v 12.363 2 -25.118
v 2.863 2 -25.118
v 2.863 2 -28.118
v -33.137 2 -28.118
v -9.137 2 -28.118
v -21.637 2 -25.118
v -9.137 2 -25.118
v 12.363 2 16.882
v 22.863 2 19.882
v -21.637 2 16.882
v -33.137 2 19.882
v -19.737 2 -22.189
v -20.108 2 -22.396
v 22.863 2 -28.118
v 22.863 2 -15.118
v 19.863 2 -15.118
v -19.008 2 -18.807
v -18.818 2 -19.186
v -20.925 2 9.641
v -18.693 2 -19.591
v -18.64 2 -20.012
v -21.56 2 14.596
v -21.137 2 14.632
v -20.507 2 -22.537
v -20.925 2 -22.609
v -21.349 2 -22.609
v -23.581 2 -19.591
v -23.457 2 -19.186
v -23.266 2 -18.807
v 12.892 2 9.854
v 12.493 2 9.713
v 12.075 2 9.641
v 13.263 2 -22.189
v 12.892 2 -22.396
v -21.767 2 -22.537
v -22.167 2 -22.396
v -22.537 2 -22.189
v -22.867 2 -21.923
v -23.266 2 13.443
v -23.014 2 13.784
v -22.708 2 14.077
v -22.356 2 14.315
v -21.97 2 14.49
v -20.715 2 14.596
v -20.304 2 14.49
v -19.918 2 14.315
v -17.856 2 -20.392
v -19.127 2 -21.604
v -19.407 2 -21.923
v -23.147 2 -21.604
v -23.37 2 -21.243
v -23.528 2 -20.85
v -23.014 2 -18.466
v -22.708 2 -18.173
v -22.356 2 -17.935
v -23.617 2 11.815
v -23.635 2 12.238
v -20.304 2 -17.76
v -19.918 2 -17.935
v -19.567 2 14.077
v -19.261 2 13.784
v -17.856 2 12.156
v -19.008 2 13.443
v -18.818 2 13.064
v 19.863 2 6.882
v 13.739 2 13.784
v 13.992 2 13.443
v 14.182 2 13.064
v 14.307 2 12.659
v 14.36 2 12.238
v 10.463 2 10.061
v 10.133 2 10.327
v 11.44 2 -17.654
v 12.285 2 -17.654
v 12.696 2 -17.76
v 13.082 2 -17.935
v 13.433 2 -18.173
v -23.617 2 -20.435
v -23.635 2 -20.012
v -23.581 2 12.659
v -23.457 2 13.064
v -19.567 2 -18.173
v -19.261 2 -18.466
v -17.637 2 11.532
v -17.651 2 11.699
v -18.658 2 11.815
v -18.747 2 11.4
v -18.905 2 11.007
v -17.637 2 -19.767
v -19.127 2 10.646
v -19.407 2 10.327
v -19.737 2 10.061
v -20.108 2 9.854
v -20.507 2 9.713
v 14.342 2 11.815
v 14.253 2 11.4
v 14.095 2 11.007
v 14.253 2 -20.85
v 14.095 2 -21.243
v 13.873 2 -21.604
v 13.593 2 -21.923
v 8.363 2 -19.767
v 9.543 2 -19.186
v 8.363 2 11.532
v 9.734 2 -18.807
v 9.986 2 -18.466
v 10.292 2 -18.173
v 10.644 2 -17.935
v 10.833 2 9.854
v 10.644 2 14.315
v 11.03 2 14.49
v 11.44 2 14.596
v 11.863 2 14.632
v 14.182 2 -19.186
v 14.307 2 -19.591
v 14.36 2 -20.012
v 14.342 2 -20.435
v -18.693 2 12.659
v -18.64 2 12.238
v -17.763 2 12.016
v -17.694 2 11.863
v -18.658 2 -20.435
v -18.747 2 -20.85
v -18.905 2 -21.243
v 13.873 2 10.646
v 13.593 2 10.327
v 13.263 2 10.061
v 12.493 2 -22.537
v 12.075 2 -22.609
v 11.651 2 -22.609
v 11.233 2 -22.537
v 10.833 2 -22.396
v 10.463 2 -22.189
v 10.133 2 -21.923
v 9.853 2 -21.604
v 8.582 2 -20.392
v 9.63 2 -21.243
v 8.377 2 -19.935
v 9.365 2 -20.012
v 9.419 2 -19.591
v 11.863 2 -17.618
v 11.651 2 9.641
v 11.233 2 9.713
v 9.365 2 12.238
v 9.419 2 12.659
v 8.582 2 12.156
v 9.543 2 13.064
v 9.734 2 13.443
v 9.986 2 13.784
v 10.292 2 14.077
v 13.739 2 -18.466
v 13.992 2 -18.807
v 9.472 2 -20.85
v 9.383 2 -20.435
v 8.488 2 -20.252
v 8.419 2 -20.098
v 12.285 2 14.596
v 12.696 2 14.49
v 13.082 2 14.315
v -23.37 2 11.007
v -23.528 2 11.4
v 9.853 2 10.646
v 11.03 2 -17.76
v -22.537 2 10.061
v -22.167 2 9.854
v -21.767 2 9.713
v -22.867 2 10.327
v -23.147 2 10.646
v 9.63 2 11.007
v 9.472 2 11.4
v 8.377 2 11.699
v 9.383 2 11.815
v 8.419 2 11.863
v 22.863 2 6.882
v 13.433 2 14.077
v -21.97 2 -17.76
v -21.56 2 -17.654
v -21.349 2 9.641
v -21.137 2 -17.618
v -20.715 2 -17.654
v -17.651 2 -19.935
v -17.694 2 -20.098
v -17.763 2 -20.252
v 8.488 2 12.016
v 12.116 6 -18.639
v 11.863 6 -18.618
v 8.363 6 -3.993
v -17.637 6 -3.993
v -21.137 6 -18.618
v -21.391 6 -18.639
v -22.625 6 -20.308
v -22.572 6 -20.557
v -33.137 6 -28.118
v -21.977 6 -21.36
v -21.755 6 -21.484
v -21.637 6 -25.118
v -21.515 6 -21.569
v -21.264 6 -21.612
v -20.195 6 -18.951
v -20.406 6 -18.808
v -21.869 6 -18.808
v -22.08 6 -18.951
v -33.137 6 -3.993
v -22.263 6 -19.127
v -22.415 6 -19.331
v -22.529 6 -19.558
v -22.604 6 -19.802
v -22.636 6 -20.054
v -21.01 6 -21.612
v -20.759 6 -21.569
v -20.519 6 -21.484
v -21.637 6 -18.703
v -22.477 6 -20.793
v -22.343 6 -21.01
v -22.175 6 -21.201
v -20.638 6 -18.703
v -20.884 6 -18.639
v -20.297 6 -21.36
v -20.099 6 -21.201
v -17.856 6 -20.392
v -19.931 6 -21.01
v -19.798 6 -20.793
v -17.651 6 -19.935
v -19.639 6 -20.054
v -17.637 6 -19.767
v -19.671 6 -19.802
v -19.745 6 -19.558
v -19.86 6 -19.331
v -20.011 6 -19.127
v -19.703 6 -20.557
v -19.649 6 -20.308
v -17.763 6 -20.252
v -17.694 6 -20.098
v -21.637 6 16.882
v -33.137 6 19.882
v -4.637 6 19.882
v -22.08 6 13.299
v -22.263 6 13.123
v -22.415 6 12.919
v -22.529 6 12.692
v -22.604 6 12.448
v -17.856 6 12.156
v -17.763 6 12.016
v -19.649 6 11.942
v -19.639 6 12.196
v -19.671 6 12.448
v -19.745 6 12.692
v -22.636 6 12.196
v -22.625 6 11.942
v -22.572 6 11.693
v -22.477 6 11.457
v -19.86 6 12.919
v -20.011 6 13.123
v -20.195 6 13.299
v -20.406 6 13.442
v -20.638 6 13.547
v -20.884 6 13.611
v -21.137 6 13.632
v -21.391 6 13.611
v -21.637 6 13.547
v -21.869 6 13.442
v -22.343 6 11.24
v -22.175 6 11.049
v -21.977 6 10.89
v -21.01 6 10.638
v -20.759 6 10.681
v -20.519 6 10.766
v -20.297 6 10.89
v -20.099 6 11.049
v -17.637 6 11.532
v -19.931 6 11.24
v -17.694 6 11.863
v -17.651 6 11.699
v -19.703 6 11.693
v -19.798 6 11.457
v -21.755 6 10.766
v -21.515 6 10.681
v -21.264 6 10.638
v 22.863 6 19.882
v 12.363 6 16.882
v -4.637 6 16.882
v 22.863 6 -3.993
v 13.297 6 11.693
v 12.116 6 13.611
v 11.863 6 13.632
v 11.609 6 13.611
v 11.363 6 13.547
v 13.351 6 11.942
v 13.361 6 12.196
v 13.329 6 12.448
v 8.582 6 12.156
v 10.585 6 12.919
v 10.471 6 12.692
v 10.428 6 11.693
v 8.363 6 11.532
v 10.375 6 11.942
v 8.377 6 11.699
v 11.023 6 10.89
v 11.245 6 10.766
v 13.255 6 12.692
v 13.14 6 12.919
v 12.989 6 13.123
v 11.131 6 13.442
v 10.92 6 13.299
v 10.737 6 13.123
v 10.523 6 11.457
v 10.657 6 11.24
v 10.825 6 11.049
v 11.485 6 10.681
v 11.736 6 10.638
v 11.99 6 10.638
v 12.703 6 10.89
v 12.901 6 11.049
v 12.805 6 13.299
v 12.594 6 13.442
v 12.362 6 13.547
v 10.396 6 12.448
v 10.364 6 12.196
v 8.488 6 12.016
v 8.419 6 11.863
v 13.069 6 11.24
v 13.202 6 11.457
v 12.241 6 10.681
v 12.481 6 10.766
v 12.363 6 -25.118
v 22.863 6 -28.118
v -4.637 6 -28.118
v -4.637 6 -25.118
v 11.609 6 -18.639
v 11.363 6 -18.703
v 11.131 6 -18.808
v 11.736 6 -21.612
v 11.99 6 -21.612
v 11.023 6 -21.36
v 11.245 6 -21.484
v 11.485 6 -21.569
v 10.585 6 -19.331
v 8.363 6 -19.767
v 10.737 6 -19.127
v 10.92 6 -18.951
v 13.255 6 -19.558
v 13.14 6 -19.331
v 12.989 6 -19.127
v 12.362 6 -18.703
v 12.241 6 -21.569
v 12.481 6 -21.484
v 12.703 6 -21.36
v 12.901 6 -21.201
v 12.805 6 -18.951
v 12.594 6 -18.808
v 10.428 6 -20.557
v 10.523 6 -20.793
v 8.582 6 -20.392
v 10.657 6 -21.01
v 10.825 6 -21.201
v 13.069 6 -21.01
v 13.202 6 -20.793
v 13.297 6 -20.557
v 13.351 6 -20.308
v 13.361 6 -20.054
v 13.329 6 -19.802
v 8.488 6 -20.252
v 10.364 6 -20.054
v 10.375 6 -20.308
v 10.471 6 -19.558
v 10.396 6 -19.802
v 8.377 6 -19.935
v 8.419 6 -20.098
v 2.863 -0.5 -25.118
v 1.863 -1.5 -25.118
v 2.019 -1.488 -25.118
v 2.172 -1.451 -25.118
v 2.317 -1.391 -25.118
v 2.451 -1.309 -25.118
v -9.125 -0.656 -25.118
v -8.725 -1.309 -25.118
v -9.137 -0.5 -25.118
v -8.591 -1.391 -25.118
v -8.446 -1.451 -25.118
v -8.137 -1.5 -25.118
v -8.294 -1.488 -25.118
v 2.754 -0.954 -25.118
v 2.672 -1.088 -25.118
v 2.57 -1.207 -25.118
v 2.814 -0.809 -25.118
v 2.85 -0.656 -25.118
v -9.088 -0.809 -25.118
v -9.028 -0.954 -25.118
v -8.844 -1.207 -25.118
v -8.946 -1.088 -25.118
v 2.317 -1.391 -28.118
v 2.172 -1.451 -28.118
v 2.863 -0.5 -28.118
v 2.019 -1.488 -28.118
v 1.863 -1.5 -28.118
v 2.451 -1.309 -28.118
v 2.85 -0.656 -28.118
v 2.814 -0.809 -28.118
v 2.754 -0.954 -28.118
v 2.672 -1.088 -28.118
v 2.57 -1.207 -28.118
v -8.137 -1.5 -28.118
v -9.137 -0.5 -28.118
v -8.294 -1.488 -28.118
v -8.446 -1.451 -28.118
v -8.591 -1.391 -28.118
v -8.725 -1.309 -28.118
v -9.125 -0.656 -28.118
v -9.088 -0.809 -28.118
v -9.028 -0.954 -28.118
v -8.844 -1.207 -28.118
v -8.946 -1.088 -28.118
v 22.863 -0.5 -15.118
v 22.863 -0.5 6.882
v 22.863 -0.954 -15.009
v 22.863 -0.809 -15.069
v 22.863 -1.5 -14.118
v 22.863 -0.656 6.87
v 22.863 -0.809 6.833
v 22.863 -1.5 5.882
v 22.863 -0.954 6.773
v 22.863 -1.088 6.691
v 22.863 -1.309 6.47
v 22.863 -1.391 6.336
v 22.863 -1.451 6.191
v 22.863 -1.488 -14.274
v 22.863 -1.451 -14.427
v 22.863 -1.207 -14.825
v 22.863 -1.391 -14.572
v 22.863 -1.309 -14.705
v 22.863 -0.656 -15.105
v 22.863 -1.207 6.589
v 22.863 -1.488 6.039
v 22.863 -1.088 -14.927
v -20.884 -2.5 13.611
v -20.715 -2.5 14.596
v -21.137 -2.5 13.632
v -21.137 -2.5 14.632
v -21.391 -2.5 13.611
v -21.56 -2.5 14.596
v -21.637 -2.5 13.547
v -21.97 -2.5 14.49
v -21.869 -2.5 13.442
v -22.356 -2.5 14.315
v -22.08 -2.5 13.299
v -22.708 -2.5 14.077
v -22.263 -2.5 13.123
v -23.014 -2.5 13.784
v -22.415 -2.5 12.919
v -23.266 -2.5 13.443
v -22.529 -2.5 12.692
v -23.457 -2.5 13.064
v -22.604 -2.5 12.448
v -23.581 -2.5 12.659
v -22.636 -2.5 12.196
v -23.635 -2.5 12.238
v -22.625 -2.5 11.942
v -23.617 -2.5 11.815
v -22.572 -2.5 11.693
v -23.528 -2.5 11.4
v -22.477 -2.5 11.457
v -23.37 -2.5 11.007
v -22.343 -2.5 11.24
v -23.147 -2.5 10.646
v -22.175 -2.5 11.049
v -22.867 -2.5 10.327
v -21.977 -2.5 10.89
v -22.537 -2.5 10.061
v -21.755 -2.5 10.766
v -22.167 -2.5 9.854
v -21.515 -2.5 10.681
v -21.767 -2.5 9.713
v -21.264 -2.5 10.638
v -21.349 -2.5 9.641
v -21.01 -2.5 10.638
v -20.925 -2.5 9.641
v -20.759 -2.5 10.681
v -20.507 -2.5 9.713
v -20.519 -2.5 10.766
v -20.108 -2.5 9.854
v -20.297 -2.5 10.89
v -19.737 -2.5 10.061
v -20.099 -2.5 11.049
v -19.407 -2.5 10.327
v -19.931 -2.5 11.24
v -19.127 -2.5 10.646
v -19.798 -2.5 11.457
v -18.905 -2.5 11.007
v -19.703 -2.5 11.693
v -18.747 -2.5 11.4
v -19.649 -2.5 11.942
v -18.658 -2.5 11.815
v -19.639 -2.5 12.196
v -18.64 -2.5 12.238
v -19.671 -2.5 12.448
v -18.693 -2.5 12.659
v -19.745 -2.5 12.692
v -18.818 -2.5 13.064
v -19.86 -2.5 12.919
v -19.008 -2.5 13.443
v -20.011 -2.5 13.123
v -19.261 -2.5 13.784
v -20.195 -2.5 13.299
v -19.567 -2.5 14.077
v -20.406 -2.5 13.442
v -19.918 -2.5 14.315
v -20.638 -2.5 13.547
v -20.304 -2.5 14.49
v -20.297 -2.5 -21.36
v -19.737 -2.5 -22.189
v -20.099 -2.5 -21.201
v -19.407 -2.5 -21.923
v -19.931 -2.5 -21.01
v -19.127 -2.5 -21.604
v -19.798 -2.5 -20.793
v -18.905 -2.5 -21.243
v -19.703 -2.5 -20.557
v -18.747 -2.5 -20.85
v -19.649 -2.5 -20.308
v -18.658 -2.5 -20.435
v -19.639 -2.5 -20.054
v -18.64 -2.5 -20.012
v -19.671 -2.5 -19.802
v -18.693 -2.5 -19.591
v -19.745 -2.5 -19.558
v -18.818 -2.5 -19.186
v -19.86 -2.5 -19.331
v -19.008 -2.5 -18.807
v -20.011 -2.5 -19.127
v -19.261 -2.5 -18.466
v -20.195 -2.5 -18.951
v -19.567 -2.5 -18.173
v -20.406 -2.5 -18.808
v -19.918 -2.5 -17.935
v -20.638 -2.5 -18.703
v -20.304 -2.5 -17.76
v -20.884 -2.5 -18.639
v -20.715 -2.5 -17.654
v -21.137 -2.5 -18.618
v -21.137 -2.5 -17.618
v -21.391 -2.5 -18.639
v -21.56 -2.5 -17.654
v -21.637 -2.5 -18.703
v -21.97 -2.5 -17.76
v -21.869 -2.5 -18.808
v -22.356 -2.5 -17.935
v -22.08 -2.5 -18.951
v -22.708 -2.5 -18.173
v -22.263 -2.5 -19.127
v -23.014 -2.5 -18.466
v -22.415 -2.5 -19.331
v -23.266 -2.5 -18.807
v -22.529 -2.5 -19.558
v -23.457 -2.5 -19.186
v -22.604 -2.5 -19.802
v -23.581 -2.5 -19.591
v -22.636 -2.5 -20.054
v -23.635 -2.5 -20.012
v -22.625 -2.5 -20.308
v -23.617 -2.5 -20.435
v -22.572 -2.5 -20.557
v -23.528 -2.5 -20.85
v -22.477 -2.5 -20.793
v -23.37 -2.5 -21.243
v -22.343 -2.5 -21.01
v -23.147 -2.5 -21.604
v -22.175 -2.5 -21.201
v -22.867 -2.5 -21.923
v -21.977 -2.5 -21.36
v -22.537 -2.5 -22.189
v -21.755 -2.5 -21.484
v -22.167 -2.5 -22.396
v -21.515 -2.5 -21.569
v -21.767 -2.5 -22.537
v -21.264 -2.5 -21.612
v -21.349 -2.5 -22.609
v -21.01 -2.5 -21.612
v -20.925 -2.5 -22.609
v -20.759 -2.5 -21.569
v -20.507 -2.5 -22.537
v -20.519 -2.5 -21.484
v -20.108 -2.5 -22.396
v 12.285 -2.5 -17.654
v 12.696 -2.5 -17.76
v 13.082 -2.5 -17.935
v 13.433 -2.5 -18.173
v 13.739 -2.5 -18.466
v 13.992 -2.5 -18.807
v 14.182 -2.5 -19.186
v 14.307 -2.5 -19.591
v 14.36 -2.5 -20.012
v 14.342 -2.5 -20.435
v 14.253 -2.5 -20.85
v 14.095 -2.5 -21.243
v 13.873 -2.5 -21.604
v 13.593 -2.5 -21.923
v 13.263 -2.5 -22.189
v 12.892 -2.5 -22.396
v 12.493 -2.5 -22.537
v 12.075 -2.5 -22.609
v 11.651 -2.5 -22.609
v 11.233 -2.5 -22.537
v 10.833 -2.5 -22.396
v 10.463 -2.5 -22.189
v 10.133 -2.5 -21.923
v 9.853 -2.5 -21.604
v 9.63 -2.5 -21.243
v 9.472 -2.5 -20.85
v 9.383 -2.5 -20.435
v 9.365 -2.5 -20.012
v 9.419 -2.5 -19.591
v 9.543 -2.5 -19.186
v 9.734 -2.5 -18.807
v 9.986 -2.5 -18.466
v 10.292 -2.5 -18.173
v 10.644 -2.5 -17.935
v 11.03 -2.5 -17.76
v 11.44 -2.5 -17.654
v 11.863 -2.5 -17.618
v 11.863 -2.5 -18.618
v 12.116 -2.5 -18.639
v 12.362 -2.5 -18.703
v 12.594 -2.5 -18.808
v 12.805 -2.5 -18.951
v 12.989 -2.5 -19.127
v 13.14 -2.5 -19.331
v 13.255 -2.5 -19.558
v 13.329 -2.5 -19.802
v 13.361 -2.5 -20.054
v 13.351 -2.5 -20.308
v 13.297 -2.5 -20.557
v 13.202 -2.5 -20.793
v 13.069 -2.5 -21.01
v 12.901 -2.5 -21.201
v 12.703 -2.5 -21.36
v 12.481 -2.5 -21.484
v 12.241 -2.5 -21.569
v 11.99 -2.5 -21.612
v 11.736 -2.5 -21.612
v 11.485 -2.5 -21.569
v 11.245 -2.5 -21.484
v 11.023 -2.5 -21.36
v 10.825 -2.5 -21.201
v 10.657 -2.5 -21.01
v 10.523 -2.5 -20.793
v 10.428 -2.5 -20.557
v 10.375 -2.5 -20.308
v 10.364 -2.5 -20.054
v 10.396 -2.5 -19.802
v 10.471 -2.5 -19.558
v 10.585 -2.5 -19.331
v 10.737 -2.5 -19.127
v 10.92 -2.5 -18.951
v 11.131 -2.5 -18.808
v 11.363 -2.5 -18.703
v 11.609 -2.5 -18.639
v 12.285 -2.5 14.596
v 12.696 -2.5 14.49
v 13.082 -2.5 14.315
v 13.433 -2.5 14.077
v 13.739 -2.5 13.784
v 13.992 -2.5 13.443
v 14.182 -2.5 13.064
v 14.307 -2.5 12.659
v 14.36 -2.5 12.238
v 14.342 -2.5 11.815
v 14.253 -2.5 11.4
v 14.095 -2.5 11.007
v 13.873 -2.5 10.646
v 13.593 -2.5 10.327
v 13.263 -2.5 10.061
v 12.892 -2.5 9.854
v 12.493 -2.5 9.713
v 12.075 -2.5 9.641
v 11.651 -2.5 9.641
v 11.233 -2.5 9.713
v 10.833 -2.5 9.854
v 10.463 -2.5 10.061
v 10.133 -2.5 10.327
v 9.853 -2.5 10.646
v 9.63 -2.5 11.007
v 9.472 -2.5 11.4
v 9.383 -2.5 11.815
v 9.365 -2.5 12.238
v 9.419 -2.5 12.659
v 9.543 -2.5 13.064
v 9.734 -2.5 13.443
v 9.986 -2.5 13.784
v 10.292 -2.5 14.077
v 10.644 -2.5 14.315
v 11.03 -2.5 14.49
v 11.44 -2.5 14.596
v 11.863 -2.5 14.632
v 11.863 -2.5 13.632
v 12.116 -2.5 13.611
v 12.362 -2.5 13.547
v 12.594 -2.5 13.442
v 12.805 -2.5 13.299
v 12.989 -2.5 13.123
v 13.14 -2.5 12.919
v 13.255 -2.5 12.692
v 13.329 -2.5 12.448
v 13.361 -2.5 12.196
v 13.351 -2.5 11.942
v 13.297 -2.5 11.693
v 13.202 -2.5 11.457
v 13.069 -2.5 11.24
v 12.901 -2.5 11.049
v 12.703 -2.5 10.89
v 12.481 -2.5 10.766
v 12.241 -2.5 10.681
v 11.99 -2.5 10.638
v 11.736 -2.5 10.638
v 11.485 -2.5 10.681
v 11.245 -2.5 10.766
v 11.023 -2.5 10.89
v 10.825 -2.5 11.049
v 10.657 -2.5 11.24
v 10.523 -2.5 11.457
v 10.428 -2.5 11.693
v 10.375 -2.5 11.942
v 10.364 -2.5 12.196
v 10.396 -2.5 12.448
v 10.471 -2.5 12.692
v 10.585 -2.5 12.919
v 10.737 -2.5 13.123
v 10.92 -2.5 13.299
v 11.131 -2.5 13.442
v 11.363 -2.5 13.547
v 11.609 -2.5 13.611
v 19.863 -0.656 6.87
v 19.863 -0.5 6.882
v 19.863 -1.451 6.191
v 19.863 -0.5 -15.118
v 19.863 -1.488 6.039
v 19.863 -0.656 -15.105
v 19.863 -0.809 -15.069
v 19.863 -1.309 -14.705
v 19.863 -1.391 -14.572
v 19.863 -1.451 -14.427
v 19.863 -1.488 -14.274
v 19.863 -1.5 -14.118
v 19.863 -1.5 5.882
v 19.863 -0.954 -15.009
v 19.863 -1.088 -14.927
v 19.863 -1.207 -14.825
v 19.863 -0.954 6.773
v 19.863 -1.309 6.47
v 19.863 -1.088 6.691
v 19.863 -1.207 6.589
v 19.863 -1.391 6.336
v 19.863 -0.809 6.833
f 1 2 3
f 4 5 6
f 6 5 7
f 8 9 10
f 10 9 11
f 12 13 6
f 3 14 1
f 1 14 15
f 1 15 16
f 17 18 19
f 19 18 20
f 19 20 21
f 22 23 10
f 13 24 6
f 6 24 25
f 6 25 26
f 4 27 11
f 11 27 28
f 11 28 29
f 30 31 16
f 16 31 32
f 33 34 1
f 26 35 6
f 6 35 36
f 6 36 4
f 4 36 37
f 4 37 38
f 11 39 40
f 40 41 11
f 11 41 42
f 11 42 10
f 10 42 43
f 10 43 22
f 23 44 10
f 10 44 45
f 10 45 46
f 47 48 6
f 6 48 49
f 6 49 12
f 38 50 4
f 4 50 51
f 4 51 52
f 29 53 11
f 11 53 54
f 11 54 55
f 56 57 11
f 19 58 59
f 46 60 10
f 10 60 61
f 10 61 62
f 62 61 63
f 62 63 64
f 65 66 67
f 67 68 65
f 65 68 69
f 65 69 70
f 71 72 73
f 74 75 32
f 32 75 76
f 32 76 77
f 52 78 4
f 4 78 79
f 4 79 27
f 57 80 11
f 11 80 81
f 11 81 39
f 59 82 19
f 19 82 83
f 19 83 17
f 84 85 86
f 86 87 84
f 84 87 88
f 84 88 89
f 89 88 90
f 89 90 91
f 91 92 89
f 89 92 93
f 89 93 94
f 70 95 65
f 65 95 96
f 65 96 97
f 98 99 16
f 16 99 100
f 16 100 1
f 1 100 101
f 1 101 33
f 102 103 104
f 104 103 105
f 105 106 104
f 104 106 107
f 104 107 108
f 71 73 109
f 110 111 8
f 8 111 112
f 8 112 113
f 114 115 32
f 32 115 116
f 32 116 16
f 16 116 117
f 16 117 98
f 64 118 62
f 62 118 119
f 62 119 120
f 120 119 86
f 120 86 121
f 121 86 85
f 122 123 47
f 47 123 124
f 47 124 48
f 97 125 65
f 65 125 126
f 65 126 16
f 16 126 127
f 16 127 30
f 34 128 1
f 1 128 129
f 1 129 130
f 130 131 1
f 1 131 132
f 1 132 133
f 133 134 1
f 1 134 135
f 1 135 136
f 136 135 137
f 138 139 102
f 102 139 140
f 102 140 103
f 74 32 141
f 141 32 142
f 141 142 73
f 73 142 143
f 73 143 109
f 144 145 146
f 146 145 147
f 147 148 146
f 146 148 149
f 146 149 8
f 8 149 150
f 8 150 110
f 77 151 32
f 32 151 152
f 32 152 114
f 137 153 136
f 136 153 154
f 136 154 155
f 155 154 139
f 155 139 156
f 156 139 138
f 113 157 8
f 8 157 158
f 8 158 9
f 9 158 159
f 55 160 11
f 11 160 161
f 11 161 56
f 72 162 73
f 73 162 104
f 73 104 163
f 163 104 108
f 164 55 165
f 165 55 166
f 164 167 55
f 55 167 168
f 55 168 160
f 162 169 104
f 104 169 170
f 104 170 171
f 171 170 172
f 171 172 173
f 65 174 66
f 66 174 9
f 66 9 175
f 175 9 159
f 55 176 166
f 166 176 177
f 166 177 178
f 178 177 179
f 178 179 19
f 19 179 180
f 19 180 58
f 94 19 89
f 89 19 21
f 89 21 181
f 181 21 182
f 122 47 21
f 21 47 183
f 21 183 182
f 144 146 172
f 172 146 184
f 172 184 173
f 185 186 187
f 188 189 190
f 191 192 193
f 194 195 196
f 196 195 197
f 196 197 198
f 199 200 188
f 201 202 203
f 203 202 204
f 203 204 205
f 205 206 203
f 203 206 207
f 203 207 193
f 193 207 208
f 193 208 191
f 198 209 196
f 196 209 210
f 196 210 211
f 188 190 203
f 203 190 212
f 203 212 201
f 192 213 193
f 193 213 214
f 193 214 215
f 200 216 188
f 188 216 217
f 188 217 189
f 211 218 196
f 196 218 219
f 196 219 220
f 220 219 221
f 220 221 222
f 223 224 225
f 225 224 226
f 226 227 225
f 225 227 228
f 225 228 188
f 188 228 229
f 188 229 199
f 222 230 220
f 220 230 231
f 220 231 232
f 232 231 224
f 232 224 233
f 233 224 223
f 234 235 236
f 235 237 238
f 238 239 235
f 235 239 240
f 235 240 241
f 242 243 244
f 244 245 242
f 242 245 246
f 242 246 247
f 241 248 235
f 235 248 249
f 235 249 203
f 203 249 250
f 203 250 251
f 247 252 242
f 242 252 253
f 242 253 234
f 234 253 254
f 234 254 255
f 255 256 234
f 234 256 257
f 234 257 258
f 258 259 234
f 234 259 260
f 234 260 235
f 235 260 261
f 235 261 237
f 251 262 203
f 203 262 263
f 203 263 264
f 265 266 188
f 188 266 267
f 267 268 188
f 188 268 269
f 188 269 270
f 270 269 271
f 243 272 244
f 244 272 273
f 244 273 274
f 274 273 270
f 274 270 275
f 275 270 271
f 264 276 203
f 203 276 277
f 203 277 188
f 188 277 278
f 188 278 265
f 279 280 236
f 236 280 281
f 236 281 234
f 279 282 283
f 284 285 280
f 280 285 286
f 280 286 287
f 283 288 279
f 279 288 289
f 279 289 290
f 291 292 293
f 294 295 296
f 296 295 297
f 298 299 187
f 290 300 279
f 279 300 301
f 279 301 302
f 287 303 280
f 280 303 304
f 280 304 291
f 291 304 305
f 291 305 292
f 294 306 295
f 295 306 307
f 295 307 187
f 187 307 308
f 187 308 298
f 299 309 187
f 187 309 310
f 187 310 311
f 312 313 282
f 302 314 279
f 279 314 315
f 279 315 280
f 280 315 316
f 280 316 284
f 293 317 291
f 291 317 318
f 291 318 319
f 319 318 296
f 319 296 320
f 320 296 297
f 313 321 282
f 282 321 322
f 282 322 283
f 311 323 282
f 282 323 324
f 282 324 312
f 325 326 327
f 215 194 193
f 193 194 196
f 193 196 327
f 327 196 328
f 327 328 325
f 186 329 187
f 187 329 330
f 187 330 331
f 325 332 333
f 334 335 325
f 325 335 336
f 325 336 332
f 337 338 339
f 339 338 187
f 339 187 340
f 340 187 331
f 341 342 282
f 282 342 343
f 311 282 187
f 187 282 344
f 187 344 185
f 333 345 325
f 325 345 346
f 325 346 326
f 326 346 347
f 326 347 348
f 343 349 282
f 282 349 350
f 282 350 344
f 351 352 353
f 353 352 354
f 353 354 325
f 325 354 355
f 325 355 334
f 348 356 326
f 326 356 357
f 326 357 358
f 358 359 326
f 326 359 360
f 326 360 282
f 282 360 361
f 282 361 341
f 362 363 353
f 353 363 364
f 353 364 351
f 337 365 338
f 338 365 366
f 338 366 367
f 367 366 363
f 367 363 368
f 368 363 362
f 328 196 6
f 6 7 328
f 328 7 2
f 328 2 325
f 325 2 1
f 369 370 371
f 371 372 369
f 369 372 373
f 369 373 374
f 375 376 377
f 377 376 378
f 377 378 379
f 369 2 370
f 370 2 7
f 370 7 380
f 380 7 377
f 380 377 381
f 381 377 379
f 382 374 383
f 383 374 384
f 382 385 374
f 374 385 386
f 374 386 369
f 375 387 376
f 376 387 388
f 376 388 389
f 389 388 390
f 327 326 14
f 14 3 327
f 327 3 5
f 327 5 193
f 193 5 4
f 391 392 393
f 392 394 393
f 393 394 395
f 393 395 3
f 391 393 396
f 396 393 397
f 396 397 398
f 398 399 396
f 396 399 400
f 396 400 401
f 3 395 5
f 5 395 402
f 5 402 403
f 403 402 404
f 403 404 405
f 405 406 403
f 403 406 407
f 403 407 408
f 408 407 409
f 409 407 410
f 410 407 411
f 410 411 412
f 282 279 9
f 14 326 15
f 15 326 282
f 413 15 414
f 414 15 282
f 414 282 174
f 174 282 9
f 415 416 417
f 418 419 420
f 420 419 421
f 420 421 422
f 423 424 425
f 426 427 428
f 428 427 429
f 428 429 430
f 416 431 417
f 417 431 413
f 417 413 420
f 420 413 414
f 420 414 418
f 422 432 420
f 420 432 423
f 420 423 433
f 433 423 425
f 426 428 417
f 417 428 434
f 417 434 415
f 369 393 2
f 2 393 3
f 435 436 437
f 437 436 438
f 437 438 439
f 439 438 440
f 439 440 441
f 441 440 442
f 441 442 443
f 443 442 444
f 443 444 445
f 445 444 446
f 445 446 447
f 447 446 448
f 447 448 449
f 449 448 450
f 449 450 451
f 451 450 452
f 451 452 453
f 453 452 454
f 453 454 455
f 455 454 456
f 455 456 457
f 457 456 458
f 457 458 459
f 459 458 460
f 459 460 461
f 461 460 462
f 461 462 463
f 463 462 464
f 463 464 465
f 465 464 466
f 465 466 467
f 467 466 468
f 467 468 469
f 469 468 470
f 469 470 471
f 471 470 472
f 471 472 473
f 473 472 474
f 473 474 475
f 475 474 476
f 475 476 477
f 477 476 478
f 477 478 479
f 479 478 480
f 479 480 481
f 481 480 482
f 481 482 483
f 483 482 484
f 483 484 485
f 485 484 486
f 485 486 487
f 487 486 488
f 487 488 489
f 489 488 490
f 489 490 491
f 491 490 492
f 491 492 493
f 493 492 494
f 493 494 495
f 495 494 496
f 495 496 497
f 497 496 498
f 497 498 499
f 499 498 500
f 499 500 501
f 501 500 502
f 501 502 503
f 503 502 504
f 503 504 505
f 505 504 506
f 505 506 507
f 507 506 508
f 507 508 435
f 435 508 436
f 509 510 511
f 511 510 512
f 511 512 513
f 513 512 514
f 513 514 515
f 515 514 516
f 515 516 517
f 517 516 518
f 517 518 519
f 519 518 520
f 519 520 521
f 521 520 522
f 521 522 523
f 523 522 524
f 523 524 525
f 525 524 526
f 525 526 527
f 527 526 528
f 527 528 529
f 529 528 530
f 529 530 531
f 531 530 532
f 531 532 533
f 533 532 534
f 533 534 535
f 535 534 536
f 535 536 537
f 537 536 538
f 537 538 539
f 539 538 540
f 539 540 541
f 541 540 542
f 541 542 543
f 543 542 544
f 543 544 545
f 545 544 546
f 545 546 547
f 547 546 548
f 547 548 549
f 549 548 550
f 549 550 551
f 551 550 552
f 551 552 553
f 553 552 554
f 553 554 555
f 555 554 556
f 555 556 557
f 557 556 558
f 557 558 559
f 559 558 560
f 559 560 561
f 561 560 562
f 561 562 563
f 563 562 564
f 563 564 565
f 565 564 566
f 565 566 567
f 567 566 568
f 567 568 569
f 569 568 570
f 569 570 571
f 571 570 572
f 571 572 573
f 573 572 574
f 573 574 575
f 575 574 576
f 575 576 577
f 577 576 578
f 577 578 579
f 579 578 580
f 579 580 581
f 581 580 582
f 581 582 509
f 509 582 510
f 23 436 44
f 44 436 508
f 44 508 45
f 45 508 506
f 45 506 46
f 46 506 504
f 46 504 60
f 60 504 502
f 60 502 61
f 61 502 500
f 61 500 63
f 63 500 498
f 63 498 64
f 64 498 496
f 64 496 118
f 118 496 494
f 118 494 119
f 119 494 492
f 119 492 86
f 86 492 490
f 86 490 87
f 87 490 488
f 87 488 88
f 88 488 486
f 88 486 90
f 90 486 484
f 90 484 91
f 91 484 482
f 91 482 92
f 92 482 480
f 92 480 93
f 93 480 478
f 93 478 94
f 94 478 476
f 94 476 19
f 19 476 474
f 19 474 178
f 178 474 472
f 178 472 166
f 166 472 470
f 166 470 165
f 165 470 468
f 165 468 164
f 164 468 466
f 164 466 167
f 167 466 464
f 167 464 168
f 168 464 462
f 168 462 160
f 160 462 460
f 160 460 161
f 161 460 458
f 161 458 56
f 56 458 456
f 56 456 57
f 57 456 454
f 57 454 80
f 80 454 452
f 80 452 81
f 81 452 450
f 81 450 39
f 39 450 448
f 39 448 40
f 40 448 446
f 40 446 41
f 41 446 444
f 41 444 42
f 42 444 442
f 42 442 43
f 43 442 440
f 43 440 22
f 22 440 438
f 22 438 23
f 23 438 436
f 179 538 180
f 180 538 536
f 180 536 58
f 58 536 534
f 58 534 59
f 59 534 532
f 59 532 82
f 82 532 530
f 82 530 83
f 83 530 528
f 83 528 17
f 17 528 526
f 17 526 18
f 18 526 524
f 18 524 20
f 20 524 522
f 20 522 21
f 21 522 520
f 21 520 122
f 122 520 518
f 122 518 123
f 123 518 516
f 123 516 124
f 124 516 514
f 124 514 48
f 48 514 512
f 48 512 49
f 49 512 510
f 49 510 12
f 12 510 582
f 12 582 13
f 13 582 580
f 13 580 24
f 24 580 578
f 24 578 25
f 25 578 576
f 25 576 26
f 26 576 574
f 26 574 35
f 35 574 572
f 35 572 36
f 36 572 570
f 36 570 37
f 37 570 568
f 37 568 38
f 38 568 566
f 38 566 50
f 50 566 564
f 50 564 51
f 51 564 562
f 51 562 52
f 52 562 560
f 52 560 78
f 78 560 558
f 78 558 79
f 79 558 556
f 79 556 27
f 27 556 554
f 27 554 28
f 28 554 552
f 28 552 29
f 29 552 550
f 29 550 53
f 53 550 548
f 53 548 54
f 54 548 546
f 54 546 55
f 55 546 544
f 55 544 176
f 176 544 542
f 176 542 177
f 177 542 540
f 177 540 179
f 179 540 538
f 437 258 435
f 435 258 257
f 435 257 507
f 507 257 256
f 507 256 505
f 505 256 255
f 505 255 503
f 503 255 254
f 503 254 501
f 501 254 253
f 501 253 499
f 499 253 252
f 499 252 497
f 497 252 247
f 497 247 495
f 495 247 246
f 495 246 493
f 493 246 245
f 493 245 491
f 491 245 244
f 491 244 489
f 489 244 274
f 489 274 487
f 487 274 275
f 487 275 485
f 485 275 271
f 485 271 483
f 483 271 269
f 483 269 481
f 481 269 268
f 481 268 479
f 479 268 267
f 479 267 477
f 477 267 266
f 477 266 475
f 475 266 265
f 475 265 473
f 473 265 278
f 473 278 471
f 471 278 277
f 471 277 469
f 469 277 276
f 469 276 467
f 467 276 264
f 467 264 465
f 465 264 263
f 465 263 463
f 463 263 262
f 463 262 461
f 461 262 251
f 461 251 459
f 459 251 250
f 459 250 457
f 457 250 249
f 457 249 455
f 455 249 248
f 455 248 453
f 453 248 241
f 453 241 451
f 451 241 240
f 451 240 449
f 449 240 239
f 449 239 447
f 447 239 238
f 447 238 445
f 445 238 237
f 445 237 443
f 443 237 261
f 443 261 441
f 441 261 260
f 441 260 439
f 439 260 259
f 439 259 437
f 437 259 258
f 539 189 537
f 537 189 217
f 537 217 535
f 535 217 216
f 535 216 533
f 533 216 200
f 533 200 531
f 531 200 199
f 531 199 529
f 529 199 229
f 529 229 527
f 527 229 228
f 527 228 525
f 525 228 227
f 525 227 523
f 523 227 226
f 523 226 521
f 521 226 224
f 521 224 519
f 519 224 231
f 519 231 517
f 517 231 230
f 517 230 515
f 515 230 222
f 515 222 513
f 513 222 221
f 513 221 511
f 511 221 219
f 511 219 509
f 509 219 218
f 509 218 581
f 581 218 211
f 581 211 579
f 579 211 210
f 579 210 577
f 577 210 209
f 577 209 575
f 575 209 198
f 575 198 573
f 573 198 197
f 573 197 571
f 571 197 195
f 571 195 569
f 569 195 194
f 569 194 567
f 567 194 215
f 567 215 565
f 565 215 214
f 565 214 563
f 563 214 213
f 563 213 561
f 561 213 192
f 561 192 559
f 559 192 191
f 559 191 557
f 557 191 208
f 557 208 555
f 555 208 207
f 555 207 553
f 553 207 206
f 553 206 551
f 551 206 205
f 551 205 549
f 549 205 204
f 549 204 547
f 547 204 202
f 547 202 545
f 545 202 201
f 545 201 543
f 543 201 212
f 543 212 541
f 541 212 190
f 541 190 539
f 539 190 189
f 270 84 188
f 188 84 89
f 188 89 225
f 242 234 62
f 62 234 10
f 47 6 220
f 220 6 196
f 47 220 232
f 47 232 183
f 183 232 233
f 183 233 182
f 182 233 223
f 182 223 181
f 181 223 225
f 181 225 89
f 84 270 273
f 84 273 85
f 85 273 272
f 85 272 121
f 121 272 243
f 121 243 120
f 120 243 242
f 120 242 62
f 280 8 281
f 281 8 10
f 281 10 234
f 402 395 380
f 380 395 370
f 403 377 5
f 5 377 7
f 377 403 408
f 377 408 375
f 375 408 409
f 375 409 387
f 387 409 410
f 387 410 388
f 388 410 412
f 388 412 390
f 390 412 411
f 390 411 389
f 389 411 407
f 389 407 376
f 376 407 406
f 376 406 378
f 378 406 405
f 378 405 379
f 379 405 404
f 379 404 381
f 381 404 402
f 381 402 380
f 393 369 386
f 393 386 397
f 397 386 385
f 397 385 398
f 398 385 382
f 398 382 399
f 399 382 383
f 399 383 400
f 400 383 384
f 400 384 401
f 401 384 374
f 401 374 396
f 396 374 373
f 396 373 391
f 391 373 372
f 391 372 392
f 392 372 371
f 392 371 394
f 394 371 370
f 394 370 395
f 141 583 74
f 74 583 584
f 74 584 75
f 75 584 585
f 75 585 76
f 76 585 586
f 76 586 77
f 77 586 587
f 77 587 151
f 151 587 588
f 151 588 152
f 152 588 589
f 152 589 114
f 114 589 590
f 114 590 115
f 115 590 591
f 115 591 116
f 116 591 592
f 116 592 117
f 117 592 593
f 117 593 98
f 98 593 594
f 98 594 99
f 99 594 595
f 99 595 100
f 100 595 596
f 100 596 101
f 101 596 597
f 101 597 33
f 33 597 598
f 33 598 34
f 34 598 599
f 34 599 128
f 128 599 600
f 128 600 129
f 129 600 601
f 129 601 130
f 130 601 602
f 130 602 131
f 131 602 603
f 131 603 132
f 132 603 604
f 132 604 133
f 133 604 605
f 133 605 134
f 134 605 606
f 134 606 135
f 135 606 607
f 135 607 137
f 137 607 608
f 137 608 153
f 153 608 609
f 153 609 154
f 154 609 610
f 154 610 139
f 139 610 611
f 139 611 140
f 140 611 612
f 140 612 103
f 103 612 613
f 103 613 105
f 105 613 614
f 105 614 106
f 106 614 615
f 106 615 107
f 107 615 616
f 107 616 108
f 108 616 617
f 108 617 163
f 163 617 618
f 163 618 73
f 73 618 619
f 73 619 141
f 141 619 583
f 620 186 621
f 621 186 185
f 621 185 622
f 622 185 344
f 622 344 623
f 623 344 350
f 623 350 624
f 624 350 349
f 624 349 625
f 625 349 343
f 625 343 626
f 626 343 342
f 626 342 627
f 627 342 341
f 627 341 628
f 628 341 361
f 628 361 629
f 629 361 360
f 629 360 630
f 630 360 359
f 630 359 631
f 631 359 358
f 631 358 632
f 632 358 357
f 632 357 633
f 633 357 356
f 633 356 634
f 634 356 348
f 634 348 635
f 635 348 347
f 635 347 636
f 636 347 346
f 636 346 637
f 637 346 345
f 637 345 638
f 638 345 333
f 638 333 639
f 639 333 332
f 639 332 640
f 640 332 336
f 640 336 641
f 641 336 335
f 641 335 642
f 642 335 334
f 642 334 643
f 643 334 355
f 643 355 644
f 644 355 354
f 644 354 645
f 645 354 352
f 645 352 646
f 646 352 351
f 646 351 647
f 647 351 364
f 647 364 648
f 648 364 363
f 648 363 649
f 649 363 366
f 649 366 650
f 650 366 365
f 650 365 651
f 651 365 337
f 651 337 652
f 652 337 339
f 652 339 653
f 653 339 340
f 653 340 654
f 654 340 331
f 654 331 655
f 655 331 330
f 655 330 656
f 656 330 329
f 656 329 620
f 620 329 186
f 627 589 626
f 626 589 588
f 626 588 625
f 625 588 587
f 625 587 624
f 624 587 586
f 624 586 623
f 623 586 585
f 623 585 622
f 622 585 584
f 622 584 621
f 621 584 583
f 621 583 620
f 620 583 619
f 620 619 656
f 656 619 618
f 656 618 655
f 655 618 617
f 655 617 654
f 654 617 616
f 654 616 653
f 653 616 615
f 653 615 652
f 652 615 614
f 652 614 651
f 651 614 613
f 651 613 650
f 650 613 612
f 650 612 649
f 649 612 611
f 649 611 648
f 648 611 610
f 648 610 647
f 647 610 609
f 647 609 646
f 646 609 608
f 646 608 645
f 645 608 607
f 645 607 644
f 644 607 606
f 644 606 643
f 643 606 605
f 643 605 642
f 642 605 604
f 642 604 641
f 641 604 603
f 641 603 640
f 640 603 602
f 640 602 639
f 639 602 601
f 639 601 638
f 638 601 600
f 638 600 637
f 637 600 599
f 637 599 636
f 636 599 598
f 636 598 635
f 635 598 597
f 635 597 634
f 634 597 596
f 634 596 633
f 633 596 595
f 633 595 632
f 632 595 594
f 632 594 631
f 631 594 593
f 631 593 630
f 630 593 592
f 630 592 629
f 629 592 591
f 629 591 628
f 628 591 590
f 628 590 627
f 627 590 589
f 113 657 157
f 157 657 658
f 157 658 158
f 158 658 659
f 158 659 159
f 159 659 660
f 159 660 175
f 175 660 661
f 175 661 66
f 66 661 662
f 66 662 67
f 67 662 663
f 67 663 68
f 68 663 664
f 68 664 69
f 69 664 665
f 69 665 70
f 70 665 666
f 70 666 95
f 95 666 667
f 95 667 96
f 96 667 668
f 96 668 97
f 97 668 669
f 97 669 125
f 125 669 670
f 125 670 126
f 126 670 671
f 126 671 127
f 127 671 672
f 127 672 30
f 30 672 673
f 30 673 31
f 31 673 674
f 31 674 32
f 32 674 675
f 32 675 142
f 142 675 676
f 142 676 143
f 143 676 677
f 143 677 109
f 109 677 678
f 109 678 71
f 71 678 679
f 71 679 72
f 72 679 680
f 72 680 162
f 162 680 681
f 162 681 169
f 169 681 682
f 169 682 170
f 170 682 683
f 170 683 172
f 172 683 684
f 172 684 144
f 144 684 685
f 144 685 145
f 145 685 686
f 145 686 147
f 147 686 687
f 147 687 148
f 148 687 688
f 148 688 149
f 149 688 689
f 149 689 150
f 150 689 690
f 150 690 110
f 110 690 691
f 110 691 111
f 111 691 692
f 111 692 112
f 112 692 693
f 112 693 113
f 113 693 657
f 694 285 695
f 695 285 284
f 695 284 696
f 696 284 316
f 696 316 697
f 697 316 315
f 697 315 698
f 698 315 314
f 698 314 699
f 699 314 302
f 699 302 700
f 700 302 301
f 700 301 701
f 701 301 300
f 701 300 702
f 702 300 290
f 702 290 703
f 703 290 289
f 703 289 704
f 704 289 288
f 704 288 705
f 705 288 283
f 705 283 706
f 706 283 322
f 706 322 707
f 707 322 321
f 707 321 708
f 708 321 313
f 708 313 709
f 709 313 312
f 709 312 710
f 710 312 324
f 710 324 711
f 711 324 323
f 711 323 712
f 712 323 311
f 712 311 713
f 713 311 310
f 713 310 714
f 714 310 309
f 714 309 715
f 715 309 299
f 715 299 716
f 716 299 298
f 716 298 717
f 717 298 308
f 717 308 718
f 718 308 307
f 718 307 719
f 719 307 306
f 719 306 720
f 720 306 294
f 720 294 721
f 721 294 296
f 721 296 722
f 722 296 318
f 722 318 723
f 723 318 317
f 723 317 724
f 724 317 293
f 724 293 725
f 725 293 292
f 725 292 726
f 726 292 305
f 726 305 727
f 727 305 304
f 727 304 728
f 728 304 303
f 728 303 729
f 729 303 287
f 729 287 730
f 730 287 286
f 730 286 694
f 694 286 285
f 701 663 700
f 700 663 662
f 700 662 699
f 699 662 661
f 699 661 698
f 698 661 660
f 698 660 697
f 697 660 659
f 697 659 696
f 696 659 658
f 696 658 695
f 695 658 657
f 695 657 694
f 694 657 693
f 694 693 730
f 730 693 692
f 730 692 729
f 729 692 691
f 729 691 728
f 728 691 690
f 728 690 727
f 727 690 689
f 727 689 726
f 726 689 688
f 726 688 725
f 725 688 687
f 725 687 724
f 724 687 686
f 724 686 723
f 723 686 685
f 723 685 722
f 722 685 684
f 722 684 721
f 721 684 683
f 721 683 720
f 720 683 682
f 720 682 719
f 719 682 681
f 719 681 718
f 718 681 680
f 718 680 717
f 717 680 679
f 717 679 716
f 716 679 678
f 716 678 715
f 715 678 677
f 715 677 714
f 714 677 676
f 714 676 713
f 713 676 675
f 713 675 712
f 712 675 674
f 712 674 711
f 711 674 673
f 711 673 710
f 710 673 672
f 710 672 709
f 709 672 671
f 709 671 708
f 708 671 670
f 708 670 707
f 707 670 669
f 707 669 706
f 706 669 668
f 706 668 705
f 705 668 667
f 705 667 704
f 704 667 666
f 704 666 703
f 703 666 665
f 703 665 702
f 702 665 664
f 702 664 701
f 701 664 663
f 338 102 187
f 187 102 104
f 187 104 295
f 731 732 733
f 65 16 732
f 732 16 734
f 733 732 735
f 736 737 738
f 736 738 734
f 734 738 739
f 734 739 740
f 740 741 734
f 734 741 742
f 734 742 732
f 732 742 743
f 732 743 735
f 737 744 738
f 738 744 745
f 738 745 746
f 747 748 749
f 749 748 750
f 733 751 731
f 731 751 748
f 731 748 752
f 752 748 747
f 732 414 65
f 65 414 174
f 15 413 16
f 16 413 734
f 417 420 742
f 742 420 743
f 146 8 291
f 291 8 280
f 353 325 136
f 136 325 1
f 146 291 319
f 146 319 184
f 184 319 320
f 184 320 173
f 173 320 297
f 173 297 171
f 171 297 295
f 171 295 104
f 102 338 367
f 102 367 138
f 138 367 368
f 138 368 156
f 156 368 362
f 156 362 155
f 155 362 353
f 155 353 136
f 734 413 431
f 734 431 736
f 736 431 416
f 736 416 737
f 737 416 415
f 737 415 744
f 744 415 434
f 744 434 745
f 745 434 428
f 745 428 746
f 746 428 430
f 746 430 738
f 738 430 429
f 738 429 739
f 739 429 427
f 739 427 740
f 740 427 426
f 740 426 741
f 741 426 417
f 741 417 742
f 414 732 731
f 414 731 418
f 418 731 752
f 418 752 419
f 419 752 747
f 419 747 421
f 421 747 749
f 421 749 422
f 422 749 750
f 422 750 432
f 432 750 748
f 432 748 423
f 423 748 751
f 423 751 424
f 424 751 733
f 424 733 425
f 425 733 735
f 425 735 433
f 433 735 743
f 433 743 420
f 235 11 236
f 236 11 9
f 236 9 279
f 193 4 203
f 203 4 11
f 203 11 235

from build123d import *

# Parameters (mm, degrees)
BOSS_EXTRUDE1_DEPTH        = 6
BOSS_EXTRUDE1_DEPTH_BACK   = 2.5
SKETCH1_R                  = 2.5
SKETCH1_R_2                = 1.5
BOSS_EXTRUDE1_2_DEPTH      = 6
BOSS_EXTRUDE1_2_DEPTH_BACK = 2.5
BOSS_EXTRUDE1_3_DEPTH      = 6
BOSS_EXTRUDE1_3_DEPTH_BACK = 2.5
BOSS_EXTRUDE1_4_DEPTH      = 6
BOSS_EXTRUDE1_4_DEPTH_BACK = 2.5
SKETCH2_W                  = 50
SKETCH2_H                  = 42
BOSS_EXTRUDE3_DEPTH        = 4
CUT_EXTRUDE2_DEPTH         = 41.142251143
CUT_EXTRUDE2_DEPTH_BACK    = 41.142251143
SKETCH4_W                  = 26
SKETCH4_H                  = 32
BOSS_EXTRUDE4_DEPTH        = 3.5
BOSS_EXTRUDE4_DEPTH_BACK   = 4
SKETCH5_W                  = 3
SKETCH5_H                  = 22
BOSS_EXTRUDE5_DEPTH        = 3.5
BOSS_EXTRUDE5_DEPTH_BACK   = 4
SKETCH6_W                  = 12
SKETCH6_H                  = 3
SKETCH3_R                  = 1.5
CUT_EXTRUDE3_DEPTH         = 6
BOSS_EXTRUDE6_START        = -4
BOSS_EXTRUDE6_DEPTH        = 4
CUT_EXTRUDE6_DEPTH         = 4
FILLET1_R                  = 1
FILLET2_R                  = 1
FILLET3_R                  = 1
FILLET4_R                  = 1


# Read off the part's stored shape, not the designer's step: Boss-Extrude6
with BuildPart() as part:
    # Sketch1 → Boss-Extrude1 (new, two sides: drawn at the far end of the back side and taken through both)
    with BuildSketch(Plane(origin=(0, 0, 0), x_dir=(1, 0, 0), z_dir=(0, 1, 0)).offset(-BOSS_EXTRUDE1_DEPTH_BACK)):
        with Locations(Location((-21.137254902, 20.117647059, 0), (0, 0, 270))):
            Circle(SKETCH1_R)
        with Locations(Location((-21.137254902, 20.117647059, 0), (0, 0, 270))):
            Circle(SKETCH1_R_2, mode=Mode.SUBTRACT)
    extrude(amount=BOSS_EXTRUDE1_DEPTH + BOSS_EXTRUDE1_DEPTH_BACK)



with BuildPart() as body_2:
    # Sketch1 → Boss-Extrude1 2 (new, two sides: drawn at the far end of the back side and taken through both)
    with BuildSketch(Plane(origin=(0, 0, 0), x_dir=(1, 0, 0), z_dir=(0, 1, 0)).offset(-BOSS_EXTRUDE1_2_DEPTH_BACK)):
        with Locations(Location((11.862745098, 20.117647059, 0), (0, 0, 270))):
            Circle(SKETCH1_R)
        with Locations(Location((11.862745098, 20.117647059, 0), (0, 0, 270))):
            Circle(SKETCH1_R_2, mode=Mode.SUBTRACT)
    extrude(amount=BOSS_EXTRUDE1_2_DEPTH + BOSS_EXTRUDE1_2_DEPTH_BACK)


with BuildPart() as body_3:
    # Sketch1 → Boss-Extrude1 3 (new, two sides: drawn at the far end of the back side and taken through both)
    with BuildSketch(Plane(origin=(0, 0, 0), x_dir=(1, 0, 0), z_dir=(0, 1, 0)).offset(-BOSS_EXTRUDE1_3_DEPTH_BACK)):
        with Locations(Location((-21.137254902, -12.132352941, 0), (0, 0, 270))):
            Circle(SKETCH1_R)
        with Locations(Location((-21.137254902, -12.132352941, 0), (0, 0, 270))):
            Circle(SKETCH1_R_2, mode=Mode.SUBTRACT)
    extrude(amount=BOSS_EXTRUDE1_3_DEPTH + BOSS_EXTRUDE1_3_DEPTH_BACK)


with BuildPart() as body_4:
    # Sketch1 → Boss-Extrude1 4 (new, two sides: drawn at the far end of the back side and taken through both)
    with BuildSketch(Plane(origin=(0, 0, 0), x_dir=(1, 0, 0), z_dir=(0, 1, 0)).offset(-BOSS_EXTRUDE1_4_DEPTH_BACK)):
        with Locations(Location((11.862745098, -12.132352941, 0), (0, 0, 270))):
            Circle(SKETCH1_R)
        with Locations(Location((11.862745098, -12.132352941, 0), (0, 0, 270))):
            Circle(SKETCH1_R_2, mode=Mode.SUBTRACT)
    extrude(amount=BOSS_EXTRUDE1_4_DEPTH + BOSS_EXTRUDE1_4_DEPTH_BACK)


with BuildPart() as part_1:
    add(part.part)

    add(body_2.part)  # Boss-Extrude3 merges body 2

    add(body_3.part)  # Boss-Extrude3 merges body 3

    add(body_4.part)  # Boss-Extrude3 merges body 4
    # Sketch2 → Boss-Extrude3 (add)
    with BuildSketch(Plane(origin=(0, 6, 0), x_dir=(1, 0, 0), z_dir=(0, 1, 0))):
        with Locations((-5.137254902, 4.117647059)):
            Rectangle(SKETCH2_W, SKETCH2_H)
    extrude(amount=-BOSS_EXTRUDE3_DEPTH)

    # Sketch4 → Cut-Extrude2 (cut, two sides: drawn at the far end of the back side and taken through both)
    with BuildSketch(Plane(origin=(0, 6, 0), x_dir=(1, 0, 0), z_dir=(0, 1, 0)).offset(-CUT_EXTRUDE2_DEPTH_BACK)):
        with Locations((-4.637254902, 4.117647059)):
            Rectangle(SKETCH4_W, SKETCH4_H)
    extrude(amount=CUT_EXTRUDE2_DEPTH + CUT_EXTRUDE2_DEPTH_BACK, mode=Mode.SUBTRACT)

    # Sketch5 → Boss-Extrude4 (add, two sides: drawn at the far end of the back side and taken through both)
    with BuildSketch(Plane.XZ.offset(-2).offset(-BOSS_EXTRUDE4_DEPTH_BACK)):
        with Locations((21.362745098, -4.117647059)):
            Rectangle(SKETCH5_W, SKETCH5_H)
    extrude(amount=BOSS_EXTRUDE4_DEPTH + BOSS_EXTRUDE4_DEPTH_BACK)

    # Sketch6 → Boss-Extrude5 (add, two sides: drawn at the far end of the back side and taken through both)
    with BuildSketch(Plane.XZ.offset(-2).offset(-BOSS_EXTRUDE5_DEPTH_BACK)):
        with Locations((-3.137254902, -26.617647059)):
            Rectangle(SKETCH6_W, SKETCH6_H)
    extrude(amount=BOSS_EXTRUDE5_DEPTH + BOSS_EXTRUDE5_DEPTH_BACK)

    # Sketch3 → Cut-Extrude3 (cut)
    with BuildSketch(Plane(origin=(0, 6, 0), x_dir=(1, 0, 0), z_dir=(0, 1, 0))):
        with Locations(Location((-21.137254902, 20.117647059, 0), (0, 0, 270))):
            Circle(SKETCH3_R)
        with Locations(Location((-21.137254902, -12.132352941, 0), (0, 0, 270))):
            Circle(SKETCH3_R)
        with Locations(Location((11.862745098, -12.132352941, 0), (0, 0, 270))):
            Circle(SKETCH3_R)
        with Locations(Location((11.862745098, 20.117647059, 0), (0, 0, 270))):
            Circle(SKETCH3_R)
    extrude(amount=-CUT_EXTRUDE3_DEPTH, mode=Mode.SUBTRACT)

    # Sketch10 → Cut-Extrude6 (cut)
    with BuildSketch(Plane(origin=(0, 6, 0), x_dir=(1, 0, 0), z_dir=(0, 1, 0))):
        Polygon((8.362745098, 20.117647059), (12.362745098, 25.117647059), (-21.637254902, 25.117647059), (-17.637254902, 20.117647059), align=None)
        Polygon((-17.637254902, -11.882352941), (-21.637254902, -16.882352941), (12.362745098, -16.882352941), (8.362745098, -11.882352941), align=None)
    extrude(amount=-CUT_EXTRUDE6_DEPTH, mode=Mode.SUBTRACT)


with BuildPart() as body_2_2:
    # Boss-Extrude6 outline → Boss-Extrude6 (new body)
    with BuildSketch(Plane(origin=(0, 6, 0), x_dir=(1, 0, 0), z_dir=(0, 1, 0)).offset(BOSS_EXTRUDE6_START)):
        Polygon((-9.137254902, 25.117647059), (-9.137254902, 28.117647059), (-33.137254902, 28.117647059), (-33.137254902, -19.882352941), (22.862745098, -19.882352941), (22.862745098, -6.882352941), (19.862745098, -6.882352941), (19.862745098, -16.882352941), (-30.137254902, -16.882352941), (-30.137254902, 25.117647059), align=None)
        Polygon((22.862745098, 28.117647059), (2.862745098, 28.117647059), (2.862745098, 25.117647059), (19.862745098, 25.117647059), (19.862745098, 15.117647059), (22.862745098, 15.117647059), align=None)
    extrude(amount=BOSS_EXTRUDE6_DEPTH)


with BuildPart() as cut_extrude6_piece_1:
    # of the separate pieces the step leaves, piece 1, a body of its own (cut_extrude6_pieces)
    add(part_1.part.solids().sort_by_distance((8.362745098, 2, -20.117647059))[0])

    # Fillet2
    fillet2_edges = [cut_extrude6_piece_1.edges().sort_by_distance(p)[0] for p in [
        (8.362745098, 4, 11.882352941),
        (8.362745098, 4, -20.117647059),
    ]]
    fillet(fillet2_edges, radius=FILLET2_R)

    # Fillet4
    fillet4_edges = [cut_extrude6_piece_1.edges().sort_by_distance(p)[0] for p in [
        (21.362745098, -1.5, -15.117647059),
        (21.362745098, -1.5, 6.882352941),
    ]]
    fillet(fillet4_edges, radius=FILLET4_R)


with BuildPart() as cut_extrude6_piece_2:
    # of the separate pieces the step leaves, piece 2, a body of its own (cut_extrude6_pieces)
    add(part_1.part.solids().sort_by_distance((-21.137254902, 0, -17.617647059))[0])

    # Fillet1
    fillet1_edges = [cut_extrude6_piece_2.edges().sort_by_distance(p)[0] for p in [
        (-17.637254902, 4, 11.882352941),
        (-17.637254902, 4, -20.117647059),
    ]]
    fillet(fillet1_edges, radius=FILLET1_R)


with BuildPart() as cut_extrude6_piece_3:
    # of the separate pieces the step leaves, piece 3, a body of its own (cut_extrude6_pieces)
    add(part_1.part.solids().sort_by_distance((-9.137254902, -1.5, -25.117647059))[0])

    # Fillet3
    fillet3_edges = [cut_extrude6_piece_3.edges().sort_by_distance(p)[0] for p in [
        (-9.137254902, -1.5, -26.617647059),
        (2.862745098, -1.5, -26.617647059),
    ]]
    fillet(fillet3_edges, radius=FILLET3_R)


with BuildPart() as body_2_2_1:
    add(body_2_2.part)

    # Combine1: union Cut-Extrude6 piece 2, Cut-Extrude6 piece 3, Cut-Extrude6 piece 1
    add(cut_extrude6_piece_2.part)
    add(cut_extrude6_piece_3.part)
    add(cut_extrude6_piece_1.part)


solid = body_2_2_1.part
